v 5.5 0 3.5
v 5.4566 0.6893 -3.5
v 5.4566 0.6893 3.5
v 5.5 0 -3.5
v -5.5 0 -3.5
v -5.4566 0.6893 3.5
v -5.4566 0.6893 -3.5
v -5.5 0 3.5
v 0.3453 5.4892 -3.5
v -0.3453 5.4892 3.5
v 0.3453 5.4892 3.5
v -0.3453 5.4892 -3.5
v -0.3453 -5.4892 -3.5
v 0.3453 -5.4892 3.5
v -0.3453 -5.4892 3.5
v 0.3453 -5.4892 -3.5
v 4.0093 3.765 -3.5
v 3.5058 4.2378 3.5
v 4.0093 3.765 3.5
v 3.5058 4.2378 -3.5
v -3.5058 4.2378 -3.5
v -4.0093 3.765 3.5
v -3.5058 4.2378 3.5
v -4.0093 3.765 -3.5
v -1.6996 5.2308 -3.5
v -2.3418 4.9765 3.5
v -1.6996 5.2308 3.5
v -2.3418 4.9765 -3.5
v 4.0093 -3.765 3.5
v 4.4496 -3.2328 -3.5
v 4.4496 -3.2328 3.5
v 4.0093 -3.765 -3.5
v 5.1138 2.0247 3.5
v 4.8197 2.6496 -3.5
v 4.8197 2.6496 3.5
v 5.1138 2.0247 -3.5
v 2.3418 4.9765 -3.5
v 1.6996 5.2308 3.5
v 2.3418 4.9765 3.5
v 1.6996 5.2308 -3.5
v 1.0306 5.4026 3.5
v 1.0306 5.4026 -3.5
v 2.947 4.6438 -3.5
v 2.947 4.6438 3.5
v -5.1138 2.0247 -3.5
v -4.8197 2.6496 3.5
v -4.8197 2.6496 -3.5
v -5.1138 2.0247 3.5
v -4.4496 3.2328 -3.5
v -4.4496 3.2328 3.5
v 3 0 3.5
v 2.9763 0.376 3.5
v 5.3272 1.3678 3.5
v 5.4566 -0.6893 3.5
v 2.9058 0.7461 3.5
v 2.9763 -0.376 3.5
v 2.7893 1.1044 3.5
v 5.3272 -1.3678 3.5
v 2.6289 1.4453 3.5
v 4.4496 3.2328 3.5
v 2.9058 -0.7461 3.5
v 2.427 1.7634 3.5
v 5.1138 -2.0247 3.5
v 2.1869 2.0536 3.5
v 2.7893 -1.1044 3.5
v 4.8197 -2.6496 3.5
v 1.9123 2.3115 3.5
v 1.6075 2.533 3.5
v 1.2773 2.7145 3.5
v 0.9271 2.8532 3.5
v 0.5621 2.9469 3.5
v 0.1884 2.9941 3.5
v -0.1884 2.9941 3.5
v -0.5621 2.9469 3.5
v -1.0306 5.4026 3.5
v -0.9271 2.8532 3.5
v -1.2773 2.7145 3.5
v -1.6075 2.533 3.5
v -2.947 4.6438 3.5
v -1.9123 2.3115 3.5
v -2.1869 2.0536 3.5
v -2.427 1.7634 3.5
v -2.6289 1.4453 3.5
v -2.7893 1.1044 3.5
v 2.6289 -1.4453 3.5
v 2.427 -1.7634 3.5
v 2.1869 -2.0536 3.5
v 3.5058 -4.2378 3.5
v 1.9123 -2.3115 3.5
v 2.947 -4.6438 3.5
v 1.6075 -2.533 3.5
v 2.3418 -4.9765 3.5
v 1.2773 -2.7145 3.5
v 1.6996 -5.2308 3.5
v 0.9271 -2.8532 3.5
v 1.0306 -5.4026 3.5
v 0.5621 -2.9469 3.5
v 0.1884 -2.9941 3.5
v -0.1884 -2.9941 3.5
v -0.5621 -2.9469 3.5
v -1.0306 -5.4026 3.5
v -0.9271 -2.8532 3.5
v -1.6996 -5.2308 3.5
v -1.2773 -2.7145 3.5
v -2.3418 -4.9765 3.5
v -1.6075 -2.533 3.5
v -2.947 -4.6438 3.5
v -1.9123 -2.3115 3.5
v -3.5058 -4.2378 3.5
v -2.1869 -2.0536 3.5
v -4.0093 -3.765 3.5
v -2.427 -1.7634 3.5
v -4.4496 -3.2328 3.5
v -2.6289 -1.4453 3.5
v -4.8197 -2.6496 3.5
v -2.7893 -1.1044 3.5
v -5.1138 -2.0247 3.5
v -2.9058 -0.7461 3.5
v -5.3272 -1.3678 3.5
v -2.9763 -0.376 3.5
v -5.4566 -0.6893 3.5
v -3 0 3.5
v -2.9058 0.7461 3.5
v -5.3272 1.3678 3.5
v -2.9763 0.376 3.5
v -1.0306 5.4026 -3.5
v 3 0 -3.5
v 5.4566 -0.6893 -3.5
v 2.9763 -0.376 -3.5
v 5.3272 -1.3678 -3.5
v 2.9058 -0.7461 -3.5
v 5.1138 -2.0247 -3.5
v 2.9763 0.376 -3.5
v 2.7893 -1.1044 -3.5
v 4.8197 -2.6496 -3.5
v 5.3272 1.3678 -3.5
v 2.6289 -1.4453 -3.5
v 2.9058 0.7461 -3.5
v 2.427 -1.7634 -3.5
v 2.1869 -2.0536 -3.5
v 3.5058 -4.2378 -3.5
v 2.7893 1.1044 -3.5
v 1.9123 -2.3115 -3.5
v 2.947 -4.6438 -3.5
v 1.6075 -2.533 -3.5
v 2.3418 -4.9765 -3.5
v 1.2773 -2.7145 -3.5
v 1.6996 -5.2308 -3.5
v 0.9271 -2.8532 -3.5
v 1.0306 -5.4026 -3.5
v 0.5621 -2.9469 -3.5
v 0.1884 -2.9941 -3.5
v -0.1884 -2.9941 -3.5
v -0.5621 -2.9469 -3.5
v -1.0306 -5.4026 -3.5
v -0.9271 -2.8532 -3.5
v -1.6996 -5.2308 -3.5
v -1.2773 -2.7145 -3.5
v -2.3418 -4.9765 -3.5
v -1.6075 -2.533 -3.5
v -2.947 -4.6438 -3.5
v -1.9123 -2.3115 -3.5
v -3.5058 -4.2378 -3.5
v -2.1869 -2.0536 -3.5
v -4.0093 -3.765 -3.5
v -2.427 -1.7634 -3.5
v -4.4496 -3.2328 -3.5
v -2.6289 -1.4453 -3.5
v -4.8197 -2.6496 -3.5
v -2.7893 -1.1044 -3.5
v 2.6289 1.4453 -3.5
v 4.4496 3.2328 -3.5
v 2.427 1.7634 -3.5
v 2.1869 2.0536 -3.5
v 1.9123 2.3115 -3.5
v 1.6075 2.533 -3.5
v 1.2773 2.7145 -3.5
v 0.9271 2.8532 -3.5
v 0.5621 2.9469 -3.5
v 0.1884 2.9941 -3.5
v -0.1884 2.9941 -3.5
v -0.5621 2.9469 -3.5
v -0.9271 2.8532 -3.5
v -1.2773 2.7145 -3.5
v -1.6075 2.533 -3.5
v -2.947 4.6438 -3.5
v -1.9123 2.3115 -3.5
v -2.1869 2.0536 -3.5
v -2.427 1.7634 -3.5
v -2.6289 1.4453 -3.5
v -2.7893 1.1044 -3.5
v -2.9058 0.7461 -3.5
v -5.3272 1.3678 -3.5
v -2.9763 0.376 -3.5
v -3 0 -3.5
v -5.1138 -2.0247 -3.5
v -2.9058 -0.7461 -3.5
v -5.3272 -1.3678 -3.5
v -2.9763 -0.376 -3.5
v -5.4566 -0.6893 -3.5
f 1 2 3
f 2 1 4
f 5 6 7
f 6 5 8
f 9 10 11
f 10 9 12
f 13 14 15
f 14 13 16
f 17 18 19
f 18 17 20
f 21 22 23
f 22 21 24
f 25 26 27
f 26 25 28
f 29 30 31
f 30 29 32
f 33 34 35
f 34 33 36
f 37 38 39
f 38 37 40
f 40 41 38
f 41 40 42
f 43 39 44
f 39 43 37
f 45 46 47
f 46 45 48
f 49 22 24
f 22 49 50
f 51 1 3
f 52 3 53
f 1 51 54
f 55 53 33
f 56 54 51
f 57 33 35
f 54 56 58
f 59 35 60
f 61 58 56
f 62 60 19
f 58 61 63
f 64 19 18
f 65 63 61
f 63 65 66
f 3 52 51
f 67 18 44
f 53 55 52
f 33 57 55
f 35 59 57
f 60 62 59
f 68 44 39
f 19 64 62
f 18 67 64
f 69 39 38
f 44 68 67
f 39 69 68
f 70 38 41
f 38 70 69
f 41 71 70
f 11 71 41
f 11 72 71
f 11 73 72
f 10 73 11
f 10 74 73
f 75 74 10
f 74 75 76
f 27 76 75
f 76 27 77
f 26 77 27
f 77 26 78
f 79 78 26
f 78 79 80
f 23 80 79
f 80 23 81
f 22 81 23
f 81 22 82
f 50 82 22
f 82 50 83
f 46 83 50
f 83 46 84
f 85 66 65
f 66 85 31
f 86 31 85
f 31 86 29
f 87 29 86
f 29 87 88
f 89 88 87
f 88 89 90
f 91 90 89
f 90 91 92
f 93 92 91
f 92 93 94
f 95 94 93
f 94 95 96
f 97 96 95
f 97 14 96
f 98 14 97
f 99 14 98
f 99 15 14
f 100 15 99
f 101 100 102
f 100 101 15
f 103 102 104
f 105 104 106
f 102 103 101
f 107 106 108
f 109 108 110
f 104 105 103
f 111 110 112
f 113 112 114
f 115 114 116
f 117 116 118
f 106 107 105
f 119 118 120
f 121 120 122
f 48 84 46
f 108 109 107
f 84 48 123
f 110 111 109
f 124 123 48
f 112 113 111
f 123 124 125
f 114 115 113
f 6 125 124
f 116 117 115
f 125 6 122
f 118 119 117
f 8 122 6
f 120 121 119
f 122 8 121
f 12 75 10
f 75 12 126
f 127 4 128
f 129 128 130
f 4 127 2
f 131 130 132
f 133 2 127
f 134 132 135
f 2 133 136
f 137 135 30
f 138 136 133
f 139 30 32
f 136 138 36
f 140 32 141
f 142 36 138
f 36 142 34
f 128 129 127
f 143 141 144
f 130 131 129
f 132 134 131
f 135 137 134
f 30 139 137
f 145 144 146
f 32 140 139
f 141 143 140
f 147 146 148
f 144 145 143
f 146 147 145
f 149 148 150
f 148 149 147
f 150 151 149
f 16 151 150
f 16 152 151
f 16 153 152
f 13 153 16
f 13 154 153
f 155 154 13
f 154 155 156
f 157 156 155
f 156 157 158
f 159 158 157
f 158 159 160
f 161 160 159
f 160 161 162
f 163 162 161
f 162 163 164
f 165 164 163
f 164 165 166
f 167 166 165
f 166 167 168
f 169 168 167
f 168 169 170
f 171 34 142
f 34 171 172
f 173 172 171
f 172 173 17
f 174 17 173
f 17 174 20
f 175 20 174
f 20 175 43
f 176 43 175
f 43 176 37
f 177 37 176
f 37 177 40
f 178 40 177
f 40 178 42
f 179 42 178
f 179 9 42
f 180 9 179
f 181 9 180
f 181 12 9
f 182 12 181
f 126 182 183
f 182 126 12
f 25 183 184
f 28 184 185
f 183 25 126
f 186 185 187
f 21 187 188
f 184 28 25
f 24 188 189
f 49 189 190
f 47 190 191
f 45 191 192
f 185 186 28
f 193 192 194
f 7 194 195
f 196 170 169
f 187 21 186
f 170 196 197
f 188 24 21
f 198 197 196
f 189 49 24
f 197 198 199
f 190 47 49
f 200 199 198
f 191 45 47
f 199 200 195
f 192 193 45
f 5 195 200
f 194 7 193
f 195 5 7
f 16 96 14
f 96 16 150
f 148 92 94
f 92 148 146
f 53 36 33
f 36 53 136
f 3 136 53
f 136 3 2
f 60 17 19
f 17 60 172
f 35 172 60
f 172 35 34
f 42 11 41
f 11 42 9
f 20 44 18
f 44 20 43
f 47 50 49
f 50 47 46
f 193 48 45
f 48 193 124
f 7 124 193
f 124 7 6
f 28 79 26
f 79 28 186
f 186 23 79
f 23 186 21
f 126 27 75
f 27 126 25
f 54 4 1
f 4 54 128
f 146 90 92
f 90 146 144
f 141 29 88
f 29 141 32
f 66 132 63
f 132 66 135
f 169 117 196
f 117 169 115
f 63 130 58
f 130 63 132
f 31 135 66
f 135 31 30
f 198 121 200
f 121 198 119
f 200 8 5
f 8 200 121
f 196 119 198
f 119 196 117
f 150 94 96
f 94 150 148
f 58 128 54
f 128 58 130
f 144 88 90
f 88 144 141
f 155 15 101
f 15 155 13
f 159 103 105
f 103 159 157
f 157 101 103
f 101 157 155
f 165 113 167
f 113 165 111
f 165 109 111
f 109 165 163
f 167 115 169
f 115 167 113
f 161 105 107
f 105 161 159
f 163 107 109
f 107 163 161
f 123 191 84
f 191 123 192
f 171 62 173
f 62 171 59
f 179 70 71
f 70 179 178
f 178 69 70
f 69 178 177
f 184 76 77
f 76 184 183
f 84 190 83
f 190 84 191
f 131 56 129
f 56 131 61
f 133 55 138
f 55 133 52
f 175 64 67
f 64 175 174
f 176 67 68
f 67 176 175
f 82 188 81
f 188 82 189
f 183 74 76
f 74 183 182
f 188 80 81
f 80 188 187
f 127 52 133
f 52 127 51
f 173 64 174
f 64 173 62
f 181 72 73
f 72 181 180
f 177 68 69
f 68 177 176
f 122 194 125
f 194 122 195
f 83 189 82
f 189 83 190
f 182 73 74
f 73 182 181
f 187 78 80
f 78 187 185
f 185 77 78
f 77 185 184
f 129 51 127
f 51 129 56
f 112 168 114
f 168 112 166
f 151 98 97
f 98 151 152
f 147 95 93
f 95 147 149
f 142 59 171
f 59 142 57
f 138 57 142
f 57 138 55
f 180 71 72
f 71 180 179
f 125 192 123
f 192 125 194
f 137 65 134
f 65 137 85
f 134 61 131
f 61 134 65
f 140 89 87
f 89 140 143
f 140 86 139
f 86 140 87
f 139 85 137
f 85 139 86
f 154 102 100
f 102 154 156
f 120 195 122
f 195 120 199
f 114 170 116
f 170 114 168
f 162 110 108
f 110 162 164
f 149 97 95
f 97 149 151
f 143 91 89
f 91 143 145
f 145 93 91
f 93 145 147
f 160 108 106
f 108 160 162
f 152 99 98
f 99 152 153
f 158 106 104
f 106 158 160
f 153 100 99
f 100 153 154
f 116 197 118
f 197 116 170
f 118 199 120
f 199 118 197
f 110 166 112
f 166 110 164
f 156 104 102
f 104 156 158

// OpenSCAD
$fn = 50;


difference() {
	union() {
		translate(v = [0, 0, -3.5000000000]) {
			cylinder(h = 7, r = 5.5000000000);
		}
	}
	union() {
		translate(v = [0, 0, -100.0000000000]) {
			cylinder(h = 200, r = 3);
		}
	}
}
